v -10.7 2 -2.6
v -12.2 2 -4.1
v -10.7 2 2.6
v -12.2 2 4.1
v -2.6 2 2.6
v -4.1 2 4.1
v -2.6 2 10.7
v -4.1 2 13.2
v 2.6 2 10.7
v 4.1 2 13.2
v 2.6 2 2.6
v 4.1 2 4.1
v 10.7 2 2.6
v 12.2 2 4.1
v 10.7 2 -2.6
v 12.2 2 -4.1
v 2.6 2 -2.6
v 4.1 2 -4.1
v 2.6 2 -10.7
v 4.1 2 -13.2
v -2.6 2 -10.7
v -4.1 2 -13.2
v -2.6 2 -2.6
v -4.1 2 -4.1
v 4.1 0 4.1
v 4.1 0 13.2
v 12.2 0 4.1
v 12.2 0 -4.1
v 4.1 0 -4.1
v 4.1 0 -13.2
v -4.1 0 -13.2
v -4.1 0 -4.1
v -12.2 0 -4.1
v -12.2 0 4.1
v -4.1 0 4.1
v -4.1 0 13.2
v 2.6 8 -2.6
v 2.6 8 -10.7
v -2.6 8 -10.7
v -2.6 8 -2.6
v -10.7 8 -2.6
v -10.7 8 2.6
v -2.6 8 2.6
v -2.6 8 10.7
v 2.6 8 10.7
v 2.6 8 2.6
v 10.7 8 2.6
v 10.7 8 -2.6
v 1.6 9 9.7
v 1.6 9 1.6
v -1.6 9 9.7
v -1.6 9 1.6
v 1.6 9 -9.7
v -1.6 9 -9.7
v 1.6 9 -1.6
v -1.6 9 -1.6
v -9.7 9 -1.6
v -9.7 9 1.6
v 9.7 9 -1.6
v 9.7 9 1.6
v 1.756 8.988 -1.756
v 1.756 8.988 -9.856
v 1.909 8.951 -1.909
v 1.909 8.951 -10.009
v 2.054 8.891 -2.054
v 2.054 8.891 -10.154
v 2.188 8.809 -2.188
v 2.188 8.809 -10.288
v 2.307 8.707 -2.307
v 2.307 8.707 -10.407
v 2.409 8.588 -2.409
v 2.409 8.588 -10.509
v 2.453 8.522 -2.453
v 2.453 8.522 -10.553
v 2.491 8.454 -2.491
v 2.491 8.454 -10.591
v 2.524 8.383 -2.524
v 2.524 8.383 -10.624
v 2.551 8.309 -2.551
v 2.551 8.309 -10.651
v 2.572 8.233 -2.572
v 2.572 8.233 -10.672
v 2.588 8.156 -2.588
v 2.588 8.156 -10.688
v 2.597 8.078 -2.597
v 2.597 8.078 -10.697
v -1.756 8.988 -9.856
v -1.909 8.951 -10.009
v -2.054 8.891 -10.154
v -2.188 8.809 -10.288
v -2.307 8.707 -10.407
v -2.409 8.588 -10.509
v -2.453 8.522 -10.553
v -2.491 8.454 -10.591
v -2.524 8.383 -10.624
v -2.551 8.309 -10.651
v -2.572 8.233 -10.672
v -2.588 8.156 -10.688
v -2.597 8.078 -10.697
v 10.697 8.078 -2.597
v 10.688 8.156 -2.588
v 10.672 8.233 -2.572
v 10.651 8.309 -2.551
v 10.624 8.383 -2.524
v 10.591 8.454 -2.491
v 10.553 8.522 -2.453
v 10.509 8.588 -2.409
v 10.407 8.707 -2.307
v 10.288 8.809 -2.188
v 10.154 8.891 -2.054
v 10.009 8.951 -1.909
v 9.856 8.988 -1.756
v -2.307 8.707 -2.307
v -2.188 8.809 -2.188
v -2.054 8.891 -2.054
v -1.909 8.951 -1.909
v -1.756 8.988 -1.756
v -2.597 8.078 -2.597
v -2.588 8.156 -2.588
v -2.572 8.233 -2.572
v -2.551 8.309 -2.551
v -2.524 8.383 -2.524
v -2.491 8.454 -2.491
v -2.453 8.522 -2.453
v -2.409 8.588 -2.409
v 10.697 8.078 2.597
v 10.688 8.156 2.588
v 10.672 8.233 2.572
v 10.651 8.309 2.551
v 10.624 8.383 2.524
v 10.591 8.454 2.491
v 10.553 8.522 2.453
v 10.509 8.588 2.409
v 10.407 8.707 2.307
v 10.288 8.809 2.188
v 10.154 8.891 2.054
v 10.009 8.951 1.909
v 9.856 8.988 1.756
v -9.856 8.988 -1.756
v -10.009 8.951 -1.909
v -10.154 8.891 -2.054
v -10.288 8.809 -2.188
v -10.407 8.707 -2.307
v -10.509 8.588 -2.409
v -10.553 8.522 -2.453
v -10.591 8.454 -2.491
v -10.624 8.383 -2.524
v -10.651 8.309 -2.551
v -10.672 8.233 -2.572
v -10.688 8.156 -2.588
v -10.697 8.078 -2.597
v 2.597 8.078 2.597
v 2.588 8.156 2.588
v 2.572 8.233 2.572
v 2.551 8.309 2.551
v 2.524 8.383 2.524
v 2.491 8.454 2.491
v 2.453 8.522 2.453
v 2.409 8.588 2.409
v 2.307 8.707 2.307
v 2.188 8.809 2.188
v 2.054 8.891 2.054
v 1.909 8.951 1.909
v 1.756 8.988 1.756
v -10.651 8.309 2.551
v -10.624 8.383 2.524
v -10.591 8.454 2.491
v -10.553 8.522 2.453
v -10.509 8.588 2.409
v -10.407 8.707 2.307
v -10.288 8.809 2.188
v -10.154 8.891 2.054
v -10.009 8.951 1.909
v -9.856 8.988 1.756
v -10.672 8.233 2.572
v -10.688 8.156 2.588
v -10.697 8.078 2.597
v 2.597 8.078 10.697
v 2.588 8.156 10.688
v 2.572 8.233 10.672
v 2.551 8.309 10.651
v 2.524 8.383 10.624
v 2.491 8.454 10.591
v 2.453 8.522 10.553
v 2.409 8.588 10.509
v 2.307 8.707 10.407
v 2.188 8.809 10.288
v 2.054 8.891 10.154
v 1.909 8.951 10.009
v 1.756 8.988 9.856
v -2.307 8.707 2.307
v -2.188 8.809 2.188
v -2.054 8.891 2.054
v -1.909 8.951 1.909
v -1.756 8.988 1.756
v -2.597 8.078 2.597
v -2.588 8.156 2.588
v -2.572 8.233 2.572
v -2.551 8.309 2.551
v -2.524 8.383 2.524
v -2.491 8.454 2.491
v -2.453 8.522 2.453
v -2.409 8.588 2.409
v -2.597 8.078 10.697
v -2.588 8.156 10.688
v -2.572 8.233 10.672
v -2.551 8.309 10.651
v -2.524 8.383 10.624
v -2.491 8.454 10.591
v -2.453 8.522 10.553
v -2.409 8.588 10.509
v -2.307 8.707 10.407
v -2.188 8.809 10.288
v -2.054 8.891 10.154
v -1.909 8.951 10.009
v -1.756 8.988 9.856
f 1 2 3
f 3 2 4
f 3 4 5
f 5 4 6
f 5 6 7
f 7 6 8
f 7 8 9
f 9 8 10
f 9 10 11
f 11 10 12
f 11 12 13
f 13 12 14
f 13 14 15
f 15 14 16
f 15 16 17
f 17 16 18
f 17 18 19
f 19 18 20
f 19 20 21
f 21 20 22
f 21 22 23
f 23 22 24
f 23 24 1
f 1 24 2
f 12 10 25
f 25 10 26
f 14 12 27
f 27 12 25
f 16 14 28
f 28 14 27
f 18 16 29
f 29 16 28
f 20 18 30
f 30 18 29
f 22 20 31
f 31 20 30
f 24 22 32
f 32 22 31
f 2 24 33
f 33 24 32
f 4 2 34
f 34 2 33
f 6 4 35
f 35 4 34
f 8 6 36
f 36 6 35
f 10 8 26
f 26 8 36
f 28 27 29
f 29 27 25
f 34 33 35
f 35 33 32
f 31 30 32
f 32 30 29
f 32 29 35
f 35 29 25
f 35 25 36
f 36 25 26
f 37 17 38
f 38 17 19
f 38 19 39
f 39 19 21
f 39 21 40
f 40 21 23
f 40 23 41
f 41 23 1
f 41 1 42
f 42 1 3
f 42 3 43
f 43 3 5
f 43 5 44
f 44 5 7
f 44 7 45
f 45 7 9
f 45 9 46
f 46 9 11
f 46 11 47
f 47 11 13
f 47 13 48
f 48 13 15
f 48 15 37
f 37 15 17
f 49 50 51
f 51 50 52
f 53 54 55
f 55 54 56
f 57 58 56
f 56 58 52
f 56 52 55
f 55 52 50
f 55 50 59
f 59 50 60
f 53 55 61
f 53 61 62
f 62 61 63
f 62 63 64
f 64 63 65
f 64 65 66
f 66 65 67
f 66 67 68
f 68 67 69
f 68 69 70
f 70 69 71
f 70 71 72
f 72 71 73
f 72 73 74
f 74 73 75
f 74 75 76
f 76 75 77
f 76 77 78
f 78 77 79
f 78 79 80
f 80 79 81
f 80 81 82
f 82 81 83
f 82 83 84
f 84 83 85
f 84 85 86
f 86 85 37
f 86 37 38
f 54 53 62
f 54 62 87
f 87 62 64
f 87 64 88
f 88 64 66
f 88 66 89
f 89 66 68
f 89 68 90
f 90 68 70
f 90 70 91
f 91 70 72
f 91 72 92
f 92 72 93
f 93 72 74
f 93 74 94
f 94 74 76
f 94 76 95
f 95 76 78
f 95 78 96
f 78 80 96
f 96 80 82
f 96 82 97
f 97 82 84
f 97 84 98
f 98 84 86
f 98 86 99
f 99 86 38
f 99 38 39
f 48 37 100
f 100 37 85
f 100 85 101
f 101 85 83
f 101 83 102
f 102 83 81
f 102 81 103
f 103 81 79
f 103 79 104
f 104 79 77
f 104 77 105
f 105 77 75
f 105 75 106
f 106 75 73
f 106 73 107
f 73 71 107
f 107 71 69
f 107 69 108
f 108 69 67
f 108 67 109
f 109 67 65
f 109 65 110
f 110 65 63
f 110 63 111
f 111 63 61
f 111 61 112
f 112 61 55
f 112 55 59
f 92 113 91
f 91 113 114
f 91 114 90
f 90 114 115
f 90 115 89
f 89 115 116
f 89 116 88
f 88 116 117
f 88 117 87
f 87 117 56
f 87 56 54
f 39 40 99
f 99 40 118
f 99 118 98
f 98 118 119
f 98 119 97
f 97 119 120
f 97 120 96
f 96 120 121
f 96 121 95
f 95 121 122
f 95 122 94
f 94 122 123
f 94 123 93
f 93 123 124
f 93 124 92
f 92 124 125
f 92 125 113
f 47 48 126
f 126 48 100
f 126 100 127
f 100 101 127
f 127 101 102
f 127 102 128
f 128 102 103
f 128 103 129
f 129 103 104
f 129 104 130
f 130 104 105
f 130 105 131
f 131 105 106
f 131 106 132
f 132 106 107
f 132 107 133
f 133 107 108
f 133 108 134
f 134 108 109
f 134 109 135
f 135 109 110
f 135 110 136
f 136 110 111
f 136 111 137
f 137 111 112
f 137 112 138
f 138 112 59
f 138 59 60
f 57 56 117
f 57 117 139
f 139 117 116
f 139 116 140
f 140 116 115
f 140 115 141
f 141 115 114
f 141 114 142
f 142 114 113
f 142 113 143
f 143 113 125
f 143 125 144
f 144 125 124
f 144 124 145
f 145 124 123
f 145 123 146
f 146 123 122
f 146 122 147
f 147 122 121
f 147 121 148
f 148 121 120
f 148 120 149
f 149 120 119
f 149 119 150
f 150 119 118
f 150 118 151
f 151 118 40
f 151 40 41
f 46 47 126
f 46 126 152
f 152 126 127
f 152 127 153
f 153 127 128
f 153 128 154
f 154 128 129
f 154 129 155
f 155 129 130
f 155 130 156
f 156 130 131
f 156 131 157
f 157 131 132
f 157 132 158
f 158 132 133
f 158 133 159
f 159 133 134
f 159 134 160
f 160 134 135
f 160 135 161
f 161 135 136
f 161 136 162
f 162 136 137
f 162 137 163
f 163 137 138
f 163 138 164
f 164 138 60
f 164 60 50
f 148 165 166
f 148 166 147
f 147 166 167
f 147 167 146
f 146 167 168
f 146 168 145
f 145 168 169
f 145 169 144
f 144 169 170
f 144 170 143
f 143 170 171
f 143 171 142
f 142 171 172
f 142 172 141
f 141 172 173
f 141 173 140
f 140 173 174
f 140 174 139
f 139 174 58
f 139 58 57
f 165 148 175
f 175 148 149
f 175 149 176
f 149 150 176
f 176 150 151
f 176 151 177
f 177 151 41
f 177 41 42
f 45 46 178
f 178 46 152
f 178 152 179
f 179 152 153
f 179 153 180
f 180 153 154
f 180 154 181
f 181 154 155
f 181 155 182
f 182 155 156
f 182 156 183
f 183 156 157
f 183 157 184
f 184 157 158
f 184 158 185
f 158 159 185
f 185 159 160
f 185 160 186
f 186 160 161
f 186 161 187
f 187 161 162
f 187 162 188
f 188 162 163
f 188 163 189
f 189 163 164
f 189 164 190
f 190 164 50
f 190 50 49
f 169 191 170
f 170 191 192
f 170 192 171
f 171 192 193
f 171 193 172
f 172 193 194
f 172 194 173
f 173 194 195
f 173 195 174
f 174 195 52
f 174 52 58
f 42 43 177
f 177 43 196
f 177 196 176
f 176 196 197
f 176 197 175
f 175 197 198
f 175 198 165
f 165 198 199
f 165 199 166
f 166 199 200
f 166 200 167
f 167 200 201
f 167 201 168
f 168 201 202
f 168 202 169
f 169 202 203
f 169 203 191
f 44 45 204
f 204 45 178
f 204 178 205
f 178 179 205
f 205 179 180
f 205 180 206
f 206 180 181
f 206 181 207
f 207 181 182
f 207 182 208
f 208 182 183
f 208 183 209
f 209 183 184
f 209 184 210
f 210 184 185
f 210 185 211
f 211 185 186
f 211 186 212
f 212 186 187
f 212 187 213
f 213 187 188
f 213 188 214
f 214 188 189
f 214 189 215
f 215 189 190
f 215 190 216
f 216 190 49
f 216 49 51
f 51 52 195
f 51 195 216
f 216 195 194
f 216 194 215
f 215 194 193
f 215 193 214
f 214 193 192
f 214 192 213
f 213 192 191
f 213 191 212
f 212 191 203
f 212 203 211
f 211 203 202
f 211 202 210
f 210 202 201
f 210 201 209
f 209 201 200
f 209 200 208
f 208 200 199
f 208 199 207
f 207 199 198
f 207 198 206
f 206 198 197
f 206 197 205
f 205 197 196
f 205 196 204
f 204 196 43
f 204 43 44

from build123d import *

# Parameters (mm, degrees)
BOSS_EXTRUDE1_DEPTH = 2
BOSS_EXTRUDE3_DEPTH = 7
FILLET5_R           = 1


with BuildPart() as part:
    # Sketch1 → Boss-Extrude1 (new body)
    with BuildSketch(Plane(origin=(0, 0, 0), x_dir=(1, 0, 0), z_dir=(0, 1, 0))):
        Polygon((4.1, -4.1), (4.1, -13.2), (-4.1, -13.2), (-4.1, -4.1), (-12.2, -4.1), (-12.2, 4.1), (-4.1, 4.1), (-4.1, 13.2), (4.1, 13.2), (4.1, 4.1), (12.2, 4.1), (12.2, -4.1), align=None)
    extrude(amount=BOSS_EXTRUDE1_DEPTH)

    # Sketch4 → Boss-Extrude3 (add)
    with BuildSketch(Plane(origin=(0, 2, 0), x_dir=(1, 0, 0), z_dir=(0, 1, 0))):
        Polygon((10.7, -2.6), (5.5, -2.6), (2.6, -2.6), (2.6, -10.7), (-2.6, -10.7), (-2.6, -2.6), (-10.7, -2.6), (-10.7, 2.6), (-5.5, 2.6), (-2.6, 2.6), (-2.6, 10.7), (2.6, 10.7), (2.6, 2.6), (5.5, 2.6), (10.7, 2.6), align=None)
    extrude(amount=BOSS_EXTRUDE3_DEPTH)

    # Fillet5
    fillet5_edges = [part.edges().sort_by_distance(p)[0] for p in [
        (6.65, 9, -2.6),
        (2.6, 9, -6.65),
        (0, 9, -10.7),
        (-2.6, 9, -6.65),
        (-6.65, 9, -2.6),
        (-10.7, 9, 0),
        (-6.65, 9, 2.6),
        (-2.6, 9, 6.65),
        (0, 9, 10.7),
        (2.6, 9, 6.65),
        (6.65, 9, 2.6),
        (10.7, 9, 0),
    ]]
    fillet(fillet5_edges, radius=FILLET5_R)


solid = part.part
